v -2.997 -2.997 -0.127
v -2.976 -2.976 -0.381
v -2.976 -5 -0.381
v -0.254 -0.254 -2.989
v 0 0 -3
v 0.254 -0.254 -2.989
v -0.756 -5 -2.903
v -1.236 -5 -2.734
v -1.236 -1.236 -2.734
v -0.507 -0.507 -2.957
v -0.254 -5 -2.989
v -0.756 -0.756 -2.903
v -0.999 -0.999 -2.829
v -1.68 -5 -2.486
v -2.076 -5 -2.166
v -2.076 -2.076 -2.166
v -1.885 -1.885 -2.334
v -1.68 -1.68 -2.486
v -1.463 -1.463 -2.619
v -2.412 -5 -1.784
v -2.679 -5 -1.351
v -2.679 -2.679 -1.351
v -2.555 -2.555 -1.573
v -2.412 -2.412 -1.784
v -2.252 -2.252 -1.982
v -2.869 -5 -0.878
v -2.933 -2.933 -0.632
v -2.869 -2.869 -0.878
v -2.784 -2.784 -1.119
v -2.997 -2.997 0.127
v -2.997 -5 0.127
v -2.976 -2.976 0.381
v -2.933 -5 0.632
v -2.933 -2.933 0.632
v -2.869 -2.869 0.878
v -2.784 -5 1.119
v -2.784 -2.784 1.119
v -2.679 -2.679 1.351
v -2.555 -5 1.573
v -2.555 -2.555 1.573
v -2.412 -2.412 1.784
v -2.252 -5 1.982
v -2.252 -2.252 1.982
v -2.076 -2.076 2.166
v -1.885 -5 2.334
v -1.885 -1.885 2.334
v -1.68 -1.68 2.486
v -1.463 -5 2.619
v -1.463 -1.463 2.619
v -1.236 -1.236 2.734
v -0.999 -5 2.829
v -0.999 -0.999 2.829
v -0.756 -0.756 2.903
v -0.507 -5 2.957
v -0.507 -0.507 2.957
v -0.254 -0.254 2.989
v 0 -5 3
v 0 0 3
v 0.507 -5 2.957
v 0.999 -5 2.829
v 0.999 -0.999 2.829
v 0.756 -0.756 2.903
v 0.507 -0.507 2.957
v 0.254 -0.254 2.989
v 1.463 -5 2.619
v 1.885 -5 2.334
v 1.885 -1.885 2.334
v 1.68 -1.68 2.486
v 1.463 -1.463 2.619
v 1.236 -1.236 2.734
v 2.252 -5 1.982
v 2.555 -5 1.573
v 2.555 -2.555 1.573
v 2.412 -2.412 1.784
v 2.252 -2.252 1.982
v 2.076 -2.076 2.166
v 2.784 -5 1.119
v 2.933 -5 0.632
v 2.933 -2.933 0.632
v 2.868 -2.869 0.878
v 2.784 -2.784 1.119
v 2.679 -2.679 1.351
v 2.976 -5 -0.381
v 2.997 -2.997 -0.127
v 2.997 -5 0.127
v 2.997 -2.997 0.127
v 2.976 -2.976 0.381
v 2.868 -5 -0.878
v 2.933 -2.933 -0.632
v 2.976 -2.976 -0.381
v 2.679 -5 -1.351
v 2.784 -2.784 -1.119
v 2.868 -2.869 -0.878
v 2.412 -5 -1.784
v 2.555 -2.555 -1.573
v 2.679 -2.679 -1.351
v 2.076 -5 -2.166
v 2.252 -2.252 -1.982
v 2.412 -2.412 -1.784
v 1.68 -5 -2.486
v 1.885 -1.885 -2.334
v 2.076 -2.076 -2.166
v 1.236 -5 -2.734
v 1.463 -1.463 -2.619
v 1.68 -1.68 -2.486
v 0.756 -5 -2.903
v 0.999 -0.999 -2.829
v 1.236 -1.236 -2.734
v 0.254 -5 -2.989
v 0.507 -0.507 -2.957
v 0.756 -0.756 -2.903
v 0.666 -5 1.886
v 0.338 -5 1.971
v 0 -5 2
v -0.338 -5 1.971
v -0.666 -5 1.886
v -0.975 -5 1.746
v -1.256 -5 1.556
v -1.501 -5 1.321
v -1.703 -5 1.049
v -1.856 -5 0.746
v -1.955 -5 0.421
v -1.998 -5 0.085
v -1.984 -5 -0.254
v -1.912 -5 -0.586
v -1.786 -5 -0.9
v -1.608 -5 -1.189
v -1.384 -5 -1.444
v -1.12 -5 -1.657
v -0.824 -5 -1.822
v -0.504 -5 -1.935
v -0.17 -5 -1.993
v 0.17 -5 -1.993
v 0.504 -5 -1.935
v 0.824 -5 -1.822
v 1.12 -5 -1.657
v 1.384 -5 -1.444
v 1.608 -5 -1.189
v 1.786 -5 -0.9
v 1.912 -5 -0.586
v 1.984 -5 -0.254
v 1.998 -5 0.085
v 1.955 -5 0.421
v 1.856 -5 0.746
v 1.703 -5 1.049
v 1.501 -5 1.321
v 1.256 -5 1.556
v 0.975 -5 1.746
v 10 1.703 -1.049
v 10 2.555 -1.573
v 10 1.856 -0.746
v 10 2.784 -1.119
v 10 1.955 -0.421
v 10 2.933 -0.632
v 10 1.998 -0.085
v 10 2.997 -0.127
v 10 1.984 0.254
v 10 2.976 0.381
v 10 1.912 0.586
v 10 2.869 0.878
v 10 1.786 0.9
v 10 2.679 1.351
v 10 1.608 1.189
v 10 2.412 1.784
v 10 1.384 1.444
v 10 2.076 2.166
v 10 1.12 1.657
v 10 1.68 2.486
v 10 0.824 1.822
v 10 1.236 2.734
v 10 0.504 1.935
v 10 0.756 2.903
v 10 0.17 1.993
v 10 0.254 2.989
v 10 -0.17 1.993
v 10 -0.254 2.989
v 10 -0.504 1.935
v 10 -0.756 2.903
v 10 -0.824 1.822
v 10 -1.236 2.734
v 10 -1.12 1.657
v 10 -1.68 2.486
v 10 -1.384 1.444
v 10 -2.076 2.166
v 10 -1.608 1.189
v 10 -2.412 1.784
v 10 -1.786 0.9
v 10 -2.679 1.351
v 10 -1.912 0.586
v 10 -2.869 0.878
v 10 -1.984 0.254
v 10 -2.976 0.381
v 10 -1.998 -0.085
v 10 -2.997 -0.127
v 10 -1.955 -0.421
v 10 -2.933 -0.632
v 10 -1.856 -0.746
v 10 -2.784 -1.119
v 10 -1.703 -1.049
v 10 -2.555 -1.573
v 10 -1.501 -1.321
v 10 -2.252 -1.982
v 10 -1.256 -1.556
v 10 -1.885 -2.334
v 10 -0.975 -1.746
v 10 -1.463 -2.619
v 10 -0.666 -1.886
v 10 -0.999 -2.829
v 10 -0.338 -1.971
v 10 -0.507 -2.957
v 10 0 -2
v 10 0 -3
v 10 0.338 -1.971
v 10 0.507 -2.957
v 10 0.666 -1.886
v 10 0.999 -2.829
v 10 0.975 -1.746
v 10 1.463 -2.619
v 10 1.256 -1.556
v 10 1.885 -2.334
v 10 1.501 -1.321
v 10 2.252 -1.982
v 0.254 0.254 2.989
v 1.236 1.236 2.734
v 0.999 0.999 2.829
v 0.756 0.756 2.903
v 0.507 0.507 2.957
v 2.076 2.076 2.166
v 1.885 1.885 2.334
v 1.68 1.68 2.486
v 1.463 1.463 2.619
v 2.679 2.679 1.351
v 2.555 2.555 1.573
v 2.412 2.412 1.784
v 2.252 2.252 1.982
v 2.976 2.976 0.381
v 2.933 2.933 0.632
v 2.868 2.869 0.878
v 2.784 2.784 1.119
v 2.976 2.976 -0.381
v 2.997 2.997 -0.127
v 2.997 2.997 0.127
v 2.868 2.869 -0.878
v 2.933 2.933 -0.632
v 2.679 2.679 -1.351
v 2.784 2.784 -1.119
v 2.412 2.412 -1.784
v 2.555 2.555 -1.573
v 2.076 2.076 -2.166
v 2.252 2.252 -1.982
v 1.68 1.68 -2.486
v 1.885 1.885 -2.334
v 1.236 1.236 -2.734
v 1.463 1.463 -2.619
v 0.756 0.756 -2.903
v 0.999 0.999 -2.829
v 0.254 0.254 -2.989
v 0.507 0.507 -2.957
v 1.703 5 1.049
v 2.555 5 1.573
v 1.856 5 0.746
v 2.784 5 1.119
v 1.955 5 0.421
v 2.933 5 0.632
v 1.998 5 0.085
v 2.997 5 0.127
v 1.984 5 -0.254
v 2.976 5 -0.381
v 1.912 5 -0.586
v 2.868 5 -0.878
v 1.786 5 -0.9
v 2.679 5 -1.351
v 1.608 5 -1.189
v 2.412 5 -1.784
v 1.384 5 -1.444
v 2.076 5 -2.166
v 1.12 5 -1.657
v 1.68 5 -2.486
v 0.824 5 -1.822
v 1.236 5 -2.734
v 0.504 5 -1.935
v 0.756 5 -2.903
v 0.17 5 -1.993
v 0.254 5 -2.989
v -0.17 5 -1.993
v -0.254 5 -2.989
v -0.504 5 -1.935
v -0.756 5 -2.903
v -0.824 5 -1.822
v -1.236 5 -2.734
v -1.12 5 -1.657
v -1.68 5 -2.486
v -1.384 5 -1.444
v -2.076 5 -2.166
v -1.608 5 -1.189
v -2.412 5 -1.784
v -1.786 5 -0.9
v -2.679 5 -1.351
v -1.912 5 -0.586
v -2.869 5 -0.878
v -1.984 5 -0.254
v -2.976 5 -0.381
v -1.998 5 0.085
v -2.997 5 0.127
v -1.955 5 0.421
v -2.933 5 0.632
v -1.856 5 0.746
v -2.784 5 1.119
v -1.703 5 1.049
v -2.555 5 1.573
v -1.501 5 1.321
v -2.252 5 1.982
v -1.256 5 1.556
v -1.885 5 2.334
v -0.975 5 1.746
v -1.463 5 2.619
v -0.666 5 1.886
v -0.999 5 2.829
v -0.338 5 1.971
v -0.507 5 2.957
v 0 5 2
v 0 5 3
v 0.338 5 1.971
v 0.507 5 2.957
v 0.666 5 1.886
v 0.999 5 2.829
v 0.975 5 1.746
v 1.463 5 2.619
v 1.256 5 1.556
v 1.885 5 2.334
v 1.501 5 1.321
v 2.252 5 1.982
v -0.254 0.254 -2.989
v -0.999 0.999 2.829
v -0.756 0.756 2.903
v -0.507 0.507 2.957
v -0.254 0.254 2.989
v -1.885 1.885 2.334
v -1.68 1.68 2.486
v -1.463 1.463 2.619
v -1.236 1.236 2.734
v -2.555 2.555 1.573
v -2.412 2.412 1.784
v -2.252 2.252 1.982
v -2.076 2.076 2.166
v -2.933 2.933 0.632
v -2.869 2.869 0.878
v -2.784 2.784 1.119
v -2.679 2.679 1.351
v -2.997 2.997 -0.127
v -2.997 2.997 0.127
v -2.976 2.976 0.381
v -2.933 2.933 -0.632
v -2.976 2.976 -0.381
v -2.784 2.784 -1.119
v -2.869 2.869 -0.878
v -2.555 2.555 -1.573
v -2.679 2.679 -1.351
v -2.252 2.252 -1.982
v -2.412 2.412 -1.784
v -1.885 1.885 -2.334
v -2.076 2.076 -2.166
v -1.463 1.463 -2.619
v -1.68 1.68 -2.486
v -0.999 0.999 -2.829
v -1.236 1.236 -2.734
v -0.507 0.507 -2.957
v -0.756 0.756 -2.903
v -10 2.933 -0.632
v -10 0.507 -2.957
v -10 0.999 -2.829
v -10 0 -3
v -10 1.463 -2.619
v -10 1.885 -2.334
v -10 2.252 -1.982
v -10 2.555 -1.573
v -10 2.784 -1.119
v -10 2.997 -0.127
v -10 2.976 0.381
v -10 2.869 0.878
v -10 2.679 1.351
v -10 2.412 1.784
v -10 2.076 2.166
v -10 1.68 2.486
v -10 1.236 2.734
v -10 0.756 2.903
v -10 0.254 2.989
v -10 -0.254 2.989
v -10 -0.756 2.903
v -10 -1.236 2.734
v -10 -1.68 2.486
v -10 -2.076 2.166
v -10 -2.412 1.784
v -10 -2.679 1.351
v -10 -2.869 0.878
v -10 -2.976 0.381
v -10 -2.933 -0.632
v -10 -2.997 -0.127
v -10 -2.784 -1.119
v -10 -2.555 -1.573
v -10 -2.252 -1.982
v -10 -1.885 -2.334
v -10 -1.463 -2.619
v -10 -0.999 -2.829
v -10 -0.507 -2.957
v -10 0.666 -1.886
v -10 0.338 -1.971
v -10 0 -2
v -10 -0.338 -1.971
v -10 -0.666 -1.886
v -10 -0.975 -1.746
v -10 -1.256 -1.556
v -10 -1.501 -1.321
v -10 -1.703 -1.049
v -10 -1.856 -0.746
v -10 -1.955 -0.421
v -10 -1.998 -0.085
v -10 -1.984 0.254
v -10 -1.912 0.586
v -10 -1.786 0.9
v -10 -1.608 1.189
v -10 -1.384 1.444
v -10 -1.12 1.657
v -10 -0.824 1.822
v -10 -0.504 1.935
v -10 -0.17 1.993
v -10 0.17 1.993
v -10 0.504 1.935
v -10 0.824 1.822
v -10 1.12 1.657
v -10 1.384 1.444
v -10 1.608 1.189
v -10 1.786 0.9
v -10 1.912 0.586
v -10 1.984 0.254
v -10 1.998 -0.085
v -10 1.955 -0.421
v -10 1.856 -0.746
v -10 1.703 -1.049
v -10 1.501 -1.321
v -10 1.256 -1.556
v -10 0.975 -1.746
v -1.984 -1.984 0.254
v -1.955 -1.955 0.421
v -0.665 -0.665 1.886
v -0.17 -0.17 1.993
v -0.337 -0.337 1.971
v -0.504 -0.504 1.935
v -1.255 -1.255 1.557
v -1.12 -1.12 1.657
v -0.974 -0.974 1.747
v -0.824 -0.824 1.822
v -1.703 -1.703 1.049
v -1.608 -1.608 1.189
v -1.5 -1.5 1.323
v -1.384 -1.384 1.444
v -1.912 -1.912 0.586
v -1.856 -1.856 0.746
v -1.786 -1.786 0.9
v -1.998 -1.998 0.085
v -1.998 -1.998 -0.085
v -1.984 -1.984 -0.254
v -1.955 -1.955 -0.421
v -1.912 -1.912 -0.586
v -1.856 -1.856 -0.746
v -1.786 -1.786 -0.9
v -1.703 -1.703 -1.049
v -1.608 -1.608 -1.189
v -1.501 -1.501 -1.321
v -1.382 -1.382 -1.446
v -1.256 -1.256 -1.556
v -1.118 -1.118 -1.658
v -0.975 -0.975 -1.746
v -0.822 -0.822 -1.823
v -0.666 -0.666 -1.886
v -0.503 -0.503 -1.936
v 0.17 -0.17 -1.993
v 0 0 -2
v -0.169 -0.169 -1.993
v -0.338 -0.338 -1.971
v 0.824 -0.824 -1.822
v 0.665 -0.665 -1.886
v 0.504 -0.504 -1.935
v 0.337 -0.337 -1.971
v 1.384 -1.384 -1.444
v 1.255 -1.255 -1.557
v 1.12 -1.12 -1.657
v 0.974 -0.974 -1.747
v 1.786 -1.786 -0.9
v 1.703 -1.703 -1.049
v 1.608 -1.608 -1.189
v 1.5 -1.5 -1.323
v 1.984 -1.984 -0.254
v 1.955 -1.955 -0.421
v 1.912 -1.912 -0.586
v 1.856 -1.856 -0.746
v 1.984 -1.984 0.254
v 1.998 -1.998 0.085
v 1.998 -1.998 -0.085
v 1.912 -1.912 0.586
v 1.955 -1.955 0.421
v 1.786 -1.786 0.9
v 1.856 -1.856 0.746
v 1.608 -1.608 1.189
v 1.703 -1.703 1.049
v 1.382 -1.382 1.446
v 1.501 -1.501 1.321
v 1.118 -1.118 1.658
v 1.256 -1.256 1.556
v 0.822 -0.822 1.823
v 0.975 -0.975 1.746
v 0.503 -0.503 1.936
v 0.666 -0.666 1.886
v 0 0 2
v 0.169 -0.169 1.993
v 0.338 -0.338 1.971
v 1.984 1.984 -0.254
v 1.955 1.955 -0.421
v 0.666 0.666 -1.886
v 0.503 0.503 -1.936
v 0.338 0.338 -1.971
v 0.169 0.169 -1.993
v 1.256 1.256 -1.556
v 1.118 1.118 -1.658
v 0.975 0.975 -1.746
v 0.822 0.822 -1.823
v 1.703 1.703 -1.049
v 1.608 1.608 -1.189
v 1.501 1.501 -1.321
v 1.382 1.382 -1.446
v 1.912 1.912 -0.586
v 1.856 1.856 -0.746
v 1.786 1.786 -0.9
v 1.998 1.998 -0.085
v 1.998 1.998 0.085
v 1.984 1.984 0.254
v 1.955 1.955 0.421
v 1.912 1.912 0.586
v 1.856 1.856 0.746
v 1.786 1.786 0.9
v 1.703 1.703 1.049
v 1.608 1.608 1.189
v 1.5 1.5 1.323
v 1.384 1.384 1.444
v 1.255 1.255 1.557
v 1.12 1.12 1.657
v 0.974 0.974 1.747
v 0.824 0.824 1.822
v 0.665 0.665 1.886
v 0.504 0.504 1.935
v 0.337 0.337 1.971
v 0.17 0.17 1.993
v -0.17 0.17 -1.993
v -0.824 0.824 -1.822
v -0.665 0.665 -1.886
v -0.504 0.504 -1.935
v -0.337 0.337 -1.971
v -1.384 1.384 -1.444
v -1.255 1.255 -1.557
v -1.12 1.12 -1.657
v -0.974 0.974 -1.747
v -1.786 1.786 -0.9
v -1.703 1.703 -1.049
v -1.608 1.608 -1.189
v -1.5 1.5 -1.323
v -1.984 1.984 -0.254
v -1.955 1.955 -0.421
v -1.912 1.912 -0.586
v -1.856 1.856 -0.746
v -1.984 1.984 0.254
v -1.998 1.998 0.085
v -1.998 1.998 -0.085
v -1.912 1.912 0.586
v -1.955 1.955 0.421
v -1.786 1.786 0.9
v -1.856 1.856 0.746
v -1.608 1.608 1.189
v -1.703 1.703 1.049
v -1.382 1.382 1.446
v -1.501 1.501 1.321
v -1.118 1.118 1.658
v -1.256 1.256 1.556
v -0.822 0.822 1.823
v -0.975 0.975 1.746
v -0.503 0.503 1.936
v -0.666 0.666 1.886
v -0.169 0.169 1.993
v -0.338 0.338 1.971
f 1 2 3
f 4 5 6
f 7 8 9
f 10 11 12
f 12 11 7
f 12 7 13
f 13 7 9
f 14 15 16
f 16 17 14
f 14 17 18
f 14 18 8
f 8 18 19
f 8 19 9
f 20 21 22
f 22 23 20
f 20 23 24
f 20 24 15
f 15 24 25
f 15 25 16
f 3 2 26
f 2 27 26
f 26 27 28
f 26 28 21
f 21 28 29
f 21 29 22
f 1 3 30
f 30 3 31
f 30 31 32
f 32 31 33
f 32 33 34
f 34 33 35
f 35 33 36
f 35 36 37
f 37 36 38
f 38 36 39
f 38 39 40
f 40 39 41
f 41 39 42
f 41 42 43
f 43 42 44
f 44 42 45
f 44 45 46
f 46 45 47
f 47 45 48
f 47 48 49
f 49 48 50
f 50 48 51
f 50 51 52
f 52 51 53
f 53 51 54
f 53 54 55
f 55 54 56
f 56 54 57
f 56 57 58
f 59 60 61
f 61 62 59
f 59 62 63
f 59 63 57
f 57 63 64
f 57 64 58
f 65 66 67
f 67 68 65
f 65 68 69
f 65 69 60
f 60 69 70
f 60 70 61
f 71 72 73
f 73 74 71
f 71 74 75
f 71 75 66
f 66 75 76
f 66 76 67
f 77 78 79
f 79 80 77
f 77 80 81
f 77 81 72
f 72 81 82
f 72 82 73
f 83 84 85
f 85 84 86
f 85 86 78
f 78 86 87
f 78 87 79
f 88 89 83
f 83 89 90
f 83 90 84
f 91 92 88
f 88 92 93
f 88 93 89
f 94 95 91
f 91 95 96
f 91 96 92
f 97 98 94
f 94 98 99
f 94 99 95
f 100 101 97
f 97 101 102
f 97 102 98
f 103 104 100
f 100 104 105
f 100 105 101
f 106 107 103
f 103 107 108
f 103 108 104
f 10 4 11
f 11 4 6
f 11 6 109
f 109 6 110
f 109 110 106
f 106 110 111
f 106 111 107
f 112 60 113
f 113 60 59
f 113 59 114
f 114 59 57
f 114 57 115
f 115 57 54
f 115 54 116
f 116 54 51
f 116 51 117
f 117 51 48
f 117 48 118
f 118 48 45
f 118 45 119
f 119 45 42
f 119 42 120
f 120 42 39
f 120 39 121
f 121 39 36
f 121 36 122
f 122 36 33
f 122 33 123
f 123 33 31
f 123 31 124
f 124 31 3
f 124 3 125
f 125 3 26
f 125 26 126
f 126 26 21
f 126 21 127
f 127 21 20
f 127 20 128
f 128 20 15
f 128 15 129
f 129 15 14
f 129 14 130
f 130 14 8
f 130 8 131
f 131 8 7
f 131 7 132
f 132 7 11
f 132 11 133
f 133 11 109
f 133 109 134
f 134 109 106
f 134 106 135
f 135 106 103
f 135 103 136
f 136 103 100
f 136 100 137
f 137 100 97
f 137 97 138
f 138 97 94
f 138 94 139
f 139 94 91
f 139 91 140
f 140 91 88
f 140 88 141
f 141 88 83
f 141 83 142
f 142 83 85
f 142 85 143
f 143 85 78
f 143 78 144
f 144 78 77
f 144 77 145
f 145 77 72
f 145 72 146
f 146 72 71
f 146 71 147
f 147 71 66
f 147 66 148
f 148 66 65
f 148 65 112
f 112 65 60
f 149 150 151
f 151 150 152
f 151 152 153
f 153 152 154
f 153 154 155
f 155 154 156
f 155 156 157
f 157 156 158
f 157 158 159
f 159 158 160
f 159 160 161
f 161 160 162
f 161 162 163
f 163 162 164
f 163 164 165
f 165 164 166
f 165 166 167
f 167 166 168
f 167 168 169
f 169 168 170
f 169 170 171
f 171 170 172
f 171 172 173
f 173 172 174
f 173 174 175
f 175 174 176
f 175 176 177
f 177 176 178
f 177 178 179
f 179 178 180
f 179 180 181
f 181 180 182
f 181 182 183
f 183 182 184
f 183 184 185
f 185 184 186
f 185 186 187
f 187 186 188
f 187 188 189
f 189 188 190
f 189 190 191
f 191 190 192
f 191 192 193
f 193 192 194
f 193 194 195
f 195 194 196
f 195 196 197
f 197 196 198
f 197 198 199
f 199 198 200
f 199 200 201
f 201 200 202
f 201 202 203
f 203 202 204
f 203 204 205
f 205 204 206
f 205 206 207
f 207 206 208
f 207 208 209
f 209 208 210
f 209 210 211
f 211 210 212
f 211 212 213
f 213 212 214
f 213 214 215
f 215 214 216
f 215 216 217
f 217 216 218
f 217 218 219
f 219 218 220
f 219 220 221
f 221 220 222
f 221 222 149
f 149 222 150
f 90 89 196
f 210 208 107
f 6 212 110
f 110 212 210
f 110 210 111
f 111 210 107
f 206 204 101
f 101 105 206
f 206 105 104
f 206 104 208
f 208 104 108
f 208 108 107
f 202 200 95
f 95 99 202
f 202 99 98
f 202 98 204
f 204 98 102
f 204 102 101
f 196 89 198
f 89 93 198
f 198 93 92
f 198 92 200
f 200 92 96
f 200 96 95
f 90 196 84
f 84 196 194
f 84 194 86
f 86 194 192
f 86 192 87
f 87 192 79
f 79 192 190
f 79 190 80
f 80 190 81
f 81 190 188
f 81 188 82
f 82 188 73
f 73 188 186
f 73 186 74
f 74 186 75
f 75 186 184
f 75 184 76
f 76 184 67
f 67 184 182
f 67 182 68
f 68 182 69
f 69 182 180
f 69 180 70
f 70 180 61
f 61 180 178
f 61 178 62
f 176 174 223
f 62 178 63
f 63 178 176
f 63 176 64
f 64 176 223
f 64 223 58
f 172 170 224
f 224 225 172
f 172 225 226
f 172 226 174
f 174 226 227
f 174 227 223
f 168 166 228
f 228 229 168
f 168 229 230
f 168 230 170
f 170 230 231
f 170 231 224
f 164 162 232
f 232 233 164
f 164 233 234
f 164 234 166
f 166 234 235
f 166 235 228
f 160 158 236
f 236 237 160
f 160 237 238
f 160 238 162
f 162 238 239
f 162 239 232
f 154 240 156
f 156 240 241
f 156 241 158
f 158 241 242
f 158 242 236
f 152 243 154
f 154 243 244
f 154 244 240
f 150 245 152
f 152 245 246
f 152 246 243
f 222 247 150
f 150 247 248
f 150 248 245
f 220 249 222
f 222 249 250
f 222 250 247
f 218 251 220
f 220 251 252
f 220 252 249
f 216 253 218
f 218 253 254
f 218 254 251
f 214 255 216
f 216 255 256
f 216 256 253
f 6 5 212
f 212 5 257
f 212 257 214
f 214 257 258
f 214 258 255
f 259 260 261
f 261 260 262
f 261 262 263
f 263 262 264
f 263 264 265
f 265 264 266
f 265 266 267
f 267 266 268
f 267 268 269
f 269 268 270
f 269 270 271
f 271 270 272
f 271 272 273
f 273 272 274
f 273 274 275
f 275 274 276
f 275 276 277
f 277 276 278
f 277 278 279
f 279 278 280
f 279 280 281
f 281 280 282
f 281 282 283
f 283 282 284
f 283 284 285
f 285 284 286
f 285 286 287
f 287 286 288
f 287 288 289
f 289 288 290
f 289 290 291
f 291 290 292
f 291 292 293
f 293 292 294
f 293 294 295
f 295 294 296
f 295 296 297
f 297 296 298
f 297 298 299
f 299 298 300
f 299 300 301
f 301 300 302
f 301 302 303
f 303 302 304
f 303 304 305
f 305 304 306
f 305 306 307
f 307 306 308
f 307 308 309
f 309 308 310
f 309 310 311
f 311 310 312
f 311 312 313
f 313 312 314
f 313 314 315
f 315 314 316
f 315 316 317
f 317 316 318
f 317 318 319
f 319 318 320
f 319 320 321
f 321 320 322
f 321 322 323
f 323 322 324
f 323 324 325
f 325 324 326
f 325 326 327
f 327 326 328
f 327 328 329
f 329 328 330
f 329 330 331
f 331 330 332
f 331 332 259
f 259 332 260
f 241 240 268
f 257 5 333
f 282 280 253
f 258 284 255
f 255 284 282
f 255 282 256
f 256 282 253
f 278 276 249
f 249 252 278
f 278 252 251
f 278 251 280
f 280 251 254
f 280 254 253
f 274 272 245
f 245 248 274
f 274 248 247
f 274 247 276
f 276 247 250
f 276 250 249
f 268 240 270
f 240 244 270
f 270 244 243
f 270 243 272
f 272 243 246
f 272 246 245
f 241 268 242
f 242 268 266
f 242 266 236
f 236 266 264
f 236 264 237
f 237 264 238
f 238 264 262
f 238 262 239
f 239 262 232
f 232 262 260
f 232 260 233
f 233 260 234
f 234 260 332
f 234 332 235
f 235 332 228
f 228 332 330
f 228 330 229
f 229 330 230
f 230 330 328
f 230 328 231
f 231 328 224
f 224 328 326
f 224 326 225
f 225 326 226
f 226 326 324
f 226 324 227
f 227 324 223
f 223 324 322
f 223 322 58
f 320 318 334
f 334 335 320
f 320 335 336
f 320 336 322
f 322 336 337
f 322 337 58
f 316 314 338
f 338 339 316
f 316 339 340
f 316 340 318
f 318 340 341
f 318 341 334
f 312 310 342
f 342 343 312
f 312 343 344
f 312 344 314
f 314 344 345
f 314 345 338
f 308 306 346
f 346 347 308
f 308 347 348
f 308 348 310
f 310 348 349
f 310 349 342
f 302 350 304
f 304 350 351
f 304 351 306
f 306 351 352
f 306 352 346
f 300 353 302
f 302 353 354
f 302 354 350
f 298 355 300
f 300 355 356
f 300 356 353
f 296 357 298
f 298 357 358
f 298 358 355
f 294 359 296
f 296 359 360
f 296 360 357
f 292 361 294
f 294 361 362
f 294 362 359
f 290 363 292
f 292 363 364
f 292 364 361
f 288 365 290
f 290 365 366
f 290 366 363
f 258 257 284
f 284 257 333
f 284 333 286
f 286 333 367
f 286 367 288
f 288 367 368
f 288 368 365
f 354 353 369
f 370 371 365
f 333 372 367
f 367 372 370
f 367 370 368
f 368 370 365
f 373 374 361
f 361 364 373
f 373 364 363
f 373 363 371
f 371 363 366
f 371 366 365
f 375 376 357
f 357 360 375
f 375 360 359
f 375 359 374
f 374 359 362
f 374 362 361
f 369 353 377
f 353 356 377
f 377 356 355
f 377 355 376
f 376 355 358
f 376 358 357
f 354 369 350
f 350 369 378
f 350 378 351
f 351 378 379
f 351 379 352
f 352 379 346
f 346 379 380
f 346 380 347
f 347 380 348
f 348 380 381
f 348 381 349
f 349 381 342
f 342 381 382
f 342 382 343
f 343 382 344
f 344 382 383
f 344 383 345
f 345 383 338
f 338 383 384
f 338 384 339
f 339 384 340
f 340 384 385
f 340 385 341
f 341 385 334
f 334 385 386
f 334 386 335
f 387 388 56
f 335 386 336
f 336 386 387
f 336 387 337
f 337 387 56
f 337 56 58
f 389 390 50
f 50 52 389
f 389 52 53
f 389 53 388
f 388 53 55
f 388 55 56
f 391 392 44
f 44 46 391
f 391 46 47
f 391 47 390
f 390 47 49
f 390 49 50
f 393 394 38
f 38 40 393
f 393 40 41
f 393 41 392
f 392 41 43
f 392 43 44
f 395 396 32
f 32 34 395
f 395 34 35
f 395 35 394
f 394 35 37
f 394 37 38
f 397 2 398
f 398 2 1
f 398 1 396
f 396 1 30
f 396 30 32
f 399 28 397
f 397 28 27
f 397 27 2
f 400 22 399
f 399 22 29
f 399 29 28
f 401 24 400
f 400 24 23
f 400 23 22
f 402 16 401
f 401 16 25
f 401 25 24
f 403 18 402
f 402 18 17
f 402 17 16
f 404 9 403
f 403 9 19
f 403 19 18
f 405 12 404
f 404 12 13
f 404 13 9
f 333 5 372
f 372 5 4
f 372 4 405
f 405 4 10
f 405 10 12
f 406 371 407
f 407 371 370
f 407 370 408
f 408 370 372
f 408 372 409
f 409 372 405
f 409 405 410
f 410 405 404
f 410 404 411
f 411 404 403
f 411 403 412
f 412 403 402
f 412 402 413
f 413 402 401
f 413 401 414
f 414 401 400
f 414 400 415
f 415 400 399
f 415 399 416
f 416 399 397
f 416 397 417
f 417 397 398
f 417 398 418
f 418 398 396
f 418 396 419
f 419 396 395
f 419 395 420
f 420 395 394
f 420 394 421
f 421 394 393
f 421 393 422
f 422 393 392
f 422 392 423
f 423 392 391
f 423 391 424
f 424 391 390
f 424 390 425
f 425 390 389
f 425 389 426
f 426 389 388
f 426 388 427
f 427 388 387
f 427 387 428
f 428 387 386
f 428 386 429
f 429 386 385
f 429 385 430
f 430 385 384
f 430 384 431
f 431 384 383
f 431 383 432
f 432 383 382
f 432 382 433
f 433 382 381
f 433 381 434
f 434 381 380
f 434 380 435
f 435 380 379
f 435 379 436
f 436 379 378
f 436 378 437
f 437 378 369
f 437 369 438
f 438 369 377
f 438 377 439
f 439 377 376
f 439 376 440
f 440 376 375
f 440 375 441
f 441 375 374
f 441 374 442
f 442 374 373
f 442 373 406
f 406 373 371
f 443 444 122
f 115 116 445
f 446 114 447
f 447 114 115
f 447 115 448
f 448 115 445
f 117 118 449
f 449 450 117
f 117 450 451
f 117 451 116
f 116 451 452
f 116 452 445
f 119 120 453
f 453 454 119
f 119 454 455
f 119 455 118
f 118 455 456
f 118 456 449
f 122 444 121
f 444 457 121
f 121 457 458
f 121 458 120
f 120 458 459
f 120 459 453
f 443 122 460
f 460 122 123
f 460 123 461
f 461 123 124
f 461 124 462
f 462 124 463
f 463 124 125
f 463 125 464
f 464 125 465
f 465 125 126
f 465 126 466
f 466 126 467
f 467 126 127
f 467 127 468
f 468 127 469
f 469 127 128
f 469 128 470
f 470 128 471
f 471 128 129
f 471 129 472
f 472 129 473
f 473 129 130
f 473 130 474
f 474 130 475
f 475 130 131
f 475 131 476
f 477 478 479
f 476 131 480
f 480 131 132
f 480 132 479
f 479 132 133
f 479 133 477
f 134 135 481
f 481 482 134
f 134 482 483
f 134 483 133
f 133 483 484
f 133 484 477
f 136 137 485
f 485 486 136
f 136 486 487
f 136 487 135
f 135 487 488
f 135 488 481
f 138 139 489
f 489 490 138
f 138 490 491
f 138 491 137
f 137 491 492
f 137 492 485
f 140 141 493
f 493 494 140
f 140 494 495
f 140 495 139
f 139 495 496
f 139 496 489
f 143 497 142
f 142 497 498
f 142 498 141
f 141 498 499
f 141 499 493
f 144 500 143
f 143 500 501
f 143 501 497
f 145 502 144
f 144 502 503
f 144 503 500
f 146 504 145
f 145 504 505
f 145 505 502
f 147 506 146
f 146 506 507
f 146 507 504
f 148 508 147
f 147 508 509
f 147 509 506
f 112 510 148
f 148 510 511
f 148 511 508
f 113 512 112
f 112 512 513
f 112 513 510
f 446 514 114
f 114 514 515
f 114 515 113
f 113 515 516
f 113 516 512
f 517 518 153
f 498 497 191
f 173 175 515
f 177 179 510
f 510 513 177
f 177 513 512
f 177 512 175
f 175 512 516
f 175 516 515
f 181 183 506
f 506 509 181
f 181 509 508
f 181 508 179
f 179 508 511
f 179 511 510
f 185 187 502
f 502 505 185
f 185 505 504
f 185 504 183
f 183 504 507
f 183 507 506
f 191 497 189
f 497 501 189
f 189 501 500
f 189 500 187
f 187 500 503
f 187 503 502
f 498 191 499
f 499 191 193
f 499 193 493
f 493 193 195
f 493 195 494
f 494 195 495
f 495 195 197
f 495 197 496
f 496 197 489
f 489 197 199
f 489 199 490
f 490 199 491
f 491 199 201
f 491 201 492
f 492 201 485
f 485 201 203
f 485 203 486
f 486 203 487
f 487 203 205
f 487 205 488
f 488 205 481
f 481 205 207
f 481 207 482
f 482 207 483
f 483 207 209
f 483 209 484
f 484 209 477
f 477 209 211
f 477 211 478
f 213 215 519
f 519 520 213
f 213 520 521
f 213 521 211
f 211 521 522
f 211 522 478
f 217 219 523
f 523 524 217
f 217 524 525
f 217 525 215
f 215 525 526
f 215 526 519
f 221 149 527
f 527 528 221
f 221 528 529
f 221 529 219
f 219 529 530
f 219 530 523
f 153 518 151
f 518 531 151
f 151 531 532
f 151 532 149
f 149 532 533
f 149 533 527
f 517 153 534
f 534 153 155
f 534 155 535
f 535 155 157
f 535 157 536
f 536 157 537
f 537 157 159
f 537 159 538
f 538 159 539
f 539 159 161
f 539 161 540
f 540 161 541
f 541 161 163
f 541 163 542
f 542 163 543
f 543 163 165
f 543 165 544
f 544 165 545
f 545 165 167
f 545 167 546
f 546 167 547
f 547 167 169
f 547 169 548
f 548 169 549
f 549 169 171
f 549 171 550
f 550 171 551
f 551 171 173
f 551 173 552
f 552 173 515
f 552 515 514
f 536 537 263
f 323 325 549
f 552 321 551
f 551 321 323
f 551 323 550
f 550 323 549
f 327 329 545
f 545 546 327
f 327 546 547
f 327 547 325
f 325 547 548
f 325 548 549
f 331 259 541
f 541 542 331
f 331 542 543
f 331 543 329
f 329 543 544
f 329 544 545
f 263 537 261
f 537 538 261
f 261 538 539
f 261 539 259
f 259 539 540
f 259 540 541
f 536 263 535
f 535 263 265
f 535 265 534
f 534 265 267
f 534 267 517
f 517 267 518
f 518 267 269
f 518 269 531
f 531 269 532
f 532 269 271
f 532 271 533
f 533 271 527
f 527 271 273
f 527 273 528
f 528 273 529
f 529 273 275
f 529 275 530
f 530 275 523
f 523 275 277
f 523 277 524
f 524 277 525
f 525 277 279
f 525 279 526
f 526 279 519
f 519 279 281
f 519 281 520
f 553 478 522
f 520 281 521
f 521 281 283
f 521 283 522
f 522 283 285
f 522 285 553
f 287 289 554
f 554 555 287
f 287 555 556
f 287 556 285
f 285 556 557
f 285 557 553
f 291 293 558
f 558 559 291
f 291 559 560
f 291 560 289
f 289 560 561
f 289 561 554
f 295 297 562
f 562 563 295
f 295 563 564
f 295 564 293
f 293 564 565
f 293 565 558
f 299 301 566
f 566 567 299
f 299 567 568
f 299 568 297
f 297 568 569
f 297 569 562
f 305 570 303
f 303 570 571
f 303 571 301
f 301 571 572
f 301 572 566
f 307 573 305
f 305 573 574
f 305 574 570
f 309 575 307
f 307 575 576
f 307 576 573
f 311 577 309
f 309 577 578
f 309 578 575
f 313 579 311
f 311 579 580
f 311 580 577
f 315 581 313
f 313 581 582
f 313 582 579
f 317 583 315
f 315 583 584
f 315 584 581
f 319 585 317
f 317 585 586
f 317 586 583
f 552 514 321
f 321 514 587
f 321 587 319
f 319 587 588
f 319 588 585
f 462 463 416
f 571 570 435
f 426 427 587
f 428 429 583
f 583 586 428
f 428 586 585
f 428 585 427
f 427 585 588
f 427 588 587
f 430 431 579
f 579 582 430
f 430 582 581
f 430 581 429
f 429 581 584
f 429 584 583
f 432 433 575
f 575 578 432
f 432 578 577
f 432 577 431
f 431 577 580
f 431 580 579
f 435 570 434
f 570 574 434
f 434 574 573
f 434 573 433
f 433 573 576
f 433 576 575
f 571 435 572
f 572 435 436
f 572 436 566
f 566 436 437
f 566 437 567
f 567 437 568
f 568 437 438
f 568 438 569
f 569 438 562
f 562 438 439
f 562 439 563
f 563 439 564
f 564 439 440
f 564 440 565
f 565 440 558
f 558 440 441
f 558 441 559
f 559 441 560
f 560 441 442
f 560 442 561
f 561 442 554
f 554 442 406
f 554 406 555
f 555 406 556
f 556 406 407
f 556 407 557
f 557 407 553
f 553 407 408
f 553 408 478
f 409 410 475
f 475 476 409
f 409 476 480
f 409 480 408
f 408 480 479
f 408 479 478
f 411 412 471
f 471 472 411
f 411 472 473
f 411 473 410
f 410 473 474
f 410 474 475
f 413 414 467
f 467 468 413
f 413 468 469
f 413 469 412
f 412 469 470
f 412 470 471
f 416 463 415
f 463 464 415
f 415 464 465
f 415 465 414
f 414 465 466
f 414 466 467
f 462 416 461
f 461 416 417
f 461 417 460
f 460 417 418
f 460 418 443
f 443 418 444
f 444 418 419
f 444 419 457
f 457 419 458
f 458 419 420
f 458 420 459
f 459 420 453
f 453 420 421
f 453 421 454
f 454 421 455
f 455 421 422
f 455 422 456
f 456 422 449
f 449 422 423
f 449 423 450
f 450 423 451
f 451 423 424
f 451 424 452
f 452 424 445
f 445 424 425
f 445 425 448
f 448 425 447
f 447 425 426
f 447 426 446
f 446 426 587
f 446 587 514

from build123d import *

# Parameters (mm, degrees)
BOSS_EXTRUDE1_DEPTH      = 5
BOSS_EXTRUDE1_DEPTH_BACK = 5
SKETCH1_R                = 3
BOSS_EXTRUDE3_DEPTH      = 10
BOSS_EXTRUDE3_DEPTH_BACK = 10
SKETCH2_R                = 3
SHELL2_START             = -5
SHELL2_OUTLINE_R         = 2
SHELL2_DEPTH             = 10
SHELL2_START_2           = -10
SHELL2_2_OUTLINE_R       = 2
SHELL2_2_DEPTH           = 20


with BuildPart() as part:
    # Sketch1 → Boss-Extrude1 (new, two sides: drawn at the far end of the back side and taken through both)
    with BuildSketch(Plane(origin=(0, 0, 0), x_dir=(1, 0, 0), z_dir=(0, 1, 0)).offset(-BOSS_EXTRUDE1_DEPTH_BACK)):
        with Locations(Location((0, 0, 0), (0, 0, 270))):
            Circle(SKETCH1_R)
    extrude(amount=BOSS_EXTRUDE1_DEPTH + BOSS_EXTRUDE1_DEPTH_BACK)

    # Sketch2 → Boss-Extrude3 (add, two sides: drawn at the far end of the back side and taken through both)
    with BuildSketch(Plane(origin=(0, 0, 0), x_dir=(0, 0, -1), z_dir=(1, 0, 0)).offset(-BOSS_EXTRUDE3_DEPTH_BACK)):
        Circle(SKETCH2_R)
    extrude(amount=BOSS_EXTRUDE3_DEPTH + BOSS_EXTRUDE3_DEPTH_BACK)

    # Shell2: read off the stored shape, not the designer's step
    # Shell2 outline → Shell2 (cut)
    with BuildSketch(Plane(origin=(0, 0, 0), x_dir=(1, 0, 0), z_dir=(0, 1, 0)).offset(SHELL2_START)):
        Circle(SHELL2_OUTLINE_R)
    extrude(amount=SHELL2_DEPTH, mode=Mode.SUBTRACT)

    # Shell2 2 outline → Shell2 2 (cut)
    with BuildSketch(Plane.YZ.offset(SHELL2_START_2)):
        Circle(SHELL2_2_OUTLINE_R)
    extrude(amount=SHELL2_2_DEPTH, mode=Mode.SUBTRACT)


solid = part.part
